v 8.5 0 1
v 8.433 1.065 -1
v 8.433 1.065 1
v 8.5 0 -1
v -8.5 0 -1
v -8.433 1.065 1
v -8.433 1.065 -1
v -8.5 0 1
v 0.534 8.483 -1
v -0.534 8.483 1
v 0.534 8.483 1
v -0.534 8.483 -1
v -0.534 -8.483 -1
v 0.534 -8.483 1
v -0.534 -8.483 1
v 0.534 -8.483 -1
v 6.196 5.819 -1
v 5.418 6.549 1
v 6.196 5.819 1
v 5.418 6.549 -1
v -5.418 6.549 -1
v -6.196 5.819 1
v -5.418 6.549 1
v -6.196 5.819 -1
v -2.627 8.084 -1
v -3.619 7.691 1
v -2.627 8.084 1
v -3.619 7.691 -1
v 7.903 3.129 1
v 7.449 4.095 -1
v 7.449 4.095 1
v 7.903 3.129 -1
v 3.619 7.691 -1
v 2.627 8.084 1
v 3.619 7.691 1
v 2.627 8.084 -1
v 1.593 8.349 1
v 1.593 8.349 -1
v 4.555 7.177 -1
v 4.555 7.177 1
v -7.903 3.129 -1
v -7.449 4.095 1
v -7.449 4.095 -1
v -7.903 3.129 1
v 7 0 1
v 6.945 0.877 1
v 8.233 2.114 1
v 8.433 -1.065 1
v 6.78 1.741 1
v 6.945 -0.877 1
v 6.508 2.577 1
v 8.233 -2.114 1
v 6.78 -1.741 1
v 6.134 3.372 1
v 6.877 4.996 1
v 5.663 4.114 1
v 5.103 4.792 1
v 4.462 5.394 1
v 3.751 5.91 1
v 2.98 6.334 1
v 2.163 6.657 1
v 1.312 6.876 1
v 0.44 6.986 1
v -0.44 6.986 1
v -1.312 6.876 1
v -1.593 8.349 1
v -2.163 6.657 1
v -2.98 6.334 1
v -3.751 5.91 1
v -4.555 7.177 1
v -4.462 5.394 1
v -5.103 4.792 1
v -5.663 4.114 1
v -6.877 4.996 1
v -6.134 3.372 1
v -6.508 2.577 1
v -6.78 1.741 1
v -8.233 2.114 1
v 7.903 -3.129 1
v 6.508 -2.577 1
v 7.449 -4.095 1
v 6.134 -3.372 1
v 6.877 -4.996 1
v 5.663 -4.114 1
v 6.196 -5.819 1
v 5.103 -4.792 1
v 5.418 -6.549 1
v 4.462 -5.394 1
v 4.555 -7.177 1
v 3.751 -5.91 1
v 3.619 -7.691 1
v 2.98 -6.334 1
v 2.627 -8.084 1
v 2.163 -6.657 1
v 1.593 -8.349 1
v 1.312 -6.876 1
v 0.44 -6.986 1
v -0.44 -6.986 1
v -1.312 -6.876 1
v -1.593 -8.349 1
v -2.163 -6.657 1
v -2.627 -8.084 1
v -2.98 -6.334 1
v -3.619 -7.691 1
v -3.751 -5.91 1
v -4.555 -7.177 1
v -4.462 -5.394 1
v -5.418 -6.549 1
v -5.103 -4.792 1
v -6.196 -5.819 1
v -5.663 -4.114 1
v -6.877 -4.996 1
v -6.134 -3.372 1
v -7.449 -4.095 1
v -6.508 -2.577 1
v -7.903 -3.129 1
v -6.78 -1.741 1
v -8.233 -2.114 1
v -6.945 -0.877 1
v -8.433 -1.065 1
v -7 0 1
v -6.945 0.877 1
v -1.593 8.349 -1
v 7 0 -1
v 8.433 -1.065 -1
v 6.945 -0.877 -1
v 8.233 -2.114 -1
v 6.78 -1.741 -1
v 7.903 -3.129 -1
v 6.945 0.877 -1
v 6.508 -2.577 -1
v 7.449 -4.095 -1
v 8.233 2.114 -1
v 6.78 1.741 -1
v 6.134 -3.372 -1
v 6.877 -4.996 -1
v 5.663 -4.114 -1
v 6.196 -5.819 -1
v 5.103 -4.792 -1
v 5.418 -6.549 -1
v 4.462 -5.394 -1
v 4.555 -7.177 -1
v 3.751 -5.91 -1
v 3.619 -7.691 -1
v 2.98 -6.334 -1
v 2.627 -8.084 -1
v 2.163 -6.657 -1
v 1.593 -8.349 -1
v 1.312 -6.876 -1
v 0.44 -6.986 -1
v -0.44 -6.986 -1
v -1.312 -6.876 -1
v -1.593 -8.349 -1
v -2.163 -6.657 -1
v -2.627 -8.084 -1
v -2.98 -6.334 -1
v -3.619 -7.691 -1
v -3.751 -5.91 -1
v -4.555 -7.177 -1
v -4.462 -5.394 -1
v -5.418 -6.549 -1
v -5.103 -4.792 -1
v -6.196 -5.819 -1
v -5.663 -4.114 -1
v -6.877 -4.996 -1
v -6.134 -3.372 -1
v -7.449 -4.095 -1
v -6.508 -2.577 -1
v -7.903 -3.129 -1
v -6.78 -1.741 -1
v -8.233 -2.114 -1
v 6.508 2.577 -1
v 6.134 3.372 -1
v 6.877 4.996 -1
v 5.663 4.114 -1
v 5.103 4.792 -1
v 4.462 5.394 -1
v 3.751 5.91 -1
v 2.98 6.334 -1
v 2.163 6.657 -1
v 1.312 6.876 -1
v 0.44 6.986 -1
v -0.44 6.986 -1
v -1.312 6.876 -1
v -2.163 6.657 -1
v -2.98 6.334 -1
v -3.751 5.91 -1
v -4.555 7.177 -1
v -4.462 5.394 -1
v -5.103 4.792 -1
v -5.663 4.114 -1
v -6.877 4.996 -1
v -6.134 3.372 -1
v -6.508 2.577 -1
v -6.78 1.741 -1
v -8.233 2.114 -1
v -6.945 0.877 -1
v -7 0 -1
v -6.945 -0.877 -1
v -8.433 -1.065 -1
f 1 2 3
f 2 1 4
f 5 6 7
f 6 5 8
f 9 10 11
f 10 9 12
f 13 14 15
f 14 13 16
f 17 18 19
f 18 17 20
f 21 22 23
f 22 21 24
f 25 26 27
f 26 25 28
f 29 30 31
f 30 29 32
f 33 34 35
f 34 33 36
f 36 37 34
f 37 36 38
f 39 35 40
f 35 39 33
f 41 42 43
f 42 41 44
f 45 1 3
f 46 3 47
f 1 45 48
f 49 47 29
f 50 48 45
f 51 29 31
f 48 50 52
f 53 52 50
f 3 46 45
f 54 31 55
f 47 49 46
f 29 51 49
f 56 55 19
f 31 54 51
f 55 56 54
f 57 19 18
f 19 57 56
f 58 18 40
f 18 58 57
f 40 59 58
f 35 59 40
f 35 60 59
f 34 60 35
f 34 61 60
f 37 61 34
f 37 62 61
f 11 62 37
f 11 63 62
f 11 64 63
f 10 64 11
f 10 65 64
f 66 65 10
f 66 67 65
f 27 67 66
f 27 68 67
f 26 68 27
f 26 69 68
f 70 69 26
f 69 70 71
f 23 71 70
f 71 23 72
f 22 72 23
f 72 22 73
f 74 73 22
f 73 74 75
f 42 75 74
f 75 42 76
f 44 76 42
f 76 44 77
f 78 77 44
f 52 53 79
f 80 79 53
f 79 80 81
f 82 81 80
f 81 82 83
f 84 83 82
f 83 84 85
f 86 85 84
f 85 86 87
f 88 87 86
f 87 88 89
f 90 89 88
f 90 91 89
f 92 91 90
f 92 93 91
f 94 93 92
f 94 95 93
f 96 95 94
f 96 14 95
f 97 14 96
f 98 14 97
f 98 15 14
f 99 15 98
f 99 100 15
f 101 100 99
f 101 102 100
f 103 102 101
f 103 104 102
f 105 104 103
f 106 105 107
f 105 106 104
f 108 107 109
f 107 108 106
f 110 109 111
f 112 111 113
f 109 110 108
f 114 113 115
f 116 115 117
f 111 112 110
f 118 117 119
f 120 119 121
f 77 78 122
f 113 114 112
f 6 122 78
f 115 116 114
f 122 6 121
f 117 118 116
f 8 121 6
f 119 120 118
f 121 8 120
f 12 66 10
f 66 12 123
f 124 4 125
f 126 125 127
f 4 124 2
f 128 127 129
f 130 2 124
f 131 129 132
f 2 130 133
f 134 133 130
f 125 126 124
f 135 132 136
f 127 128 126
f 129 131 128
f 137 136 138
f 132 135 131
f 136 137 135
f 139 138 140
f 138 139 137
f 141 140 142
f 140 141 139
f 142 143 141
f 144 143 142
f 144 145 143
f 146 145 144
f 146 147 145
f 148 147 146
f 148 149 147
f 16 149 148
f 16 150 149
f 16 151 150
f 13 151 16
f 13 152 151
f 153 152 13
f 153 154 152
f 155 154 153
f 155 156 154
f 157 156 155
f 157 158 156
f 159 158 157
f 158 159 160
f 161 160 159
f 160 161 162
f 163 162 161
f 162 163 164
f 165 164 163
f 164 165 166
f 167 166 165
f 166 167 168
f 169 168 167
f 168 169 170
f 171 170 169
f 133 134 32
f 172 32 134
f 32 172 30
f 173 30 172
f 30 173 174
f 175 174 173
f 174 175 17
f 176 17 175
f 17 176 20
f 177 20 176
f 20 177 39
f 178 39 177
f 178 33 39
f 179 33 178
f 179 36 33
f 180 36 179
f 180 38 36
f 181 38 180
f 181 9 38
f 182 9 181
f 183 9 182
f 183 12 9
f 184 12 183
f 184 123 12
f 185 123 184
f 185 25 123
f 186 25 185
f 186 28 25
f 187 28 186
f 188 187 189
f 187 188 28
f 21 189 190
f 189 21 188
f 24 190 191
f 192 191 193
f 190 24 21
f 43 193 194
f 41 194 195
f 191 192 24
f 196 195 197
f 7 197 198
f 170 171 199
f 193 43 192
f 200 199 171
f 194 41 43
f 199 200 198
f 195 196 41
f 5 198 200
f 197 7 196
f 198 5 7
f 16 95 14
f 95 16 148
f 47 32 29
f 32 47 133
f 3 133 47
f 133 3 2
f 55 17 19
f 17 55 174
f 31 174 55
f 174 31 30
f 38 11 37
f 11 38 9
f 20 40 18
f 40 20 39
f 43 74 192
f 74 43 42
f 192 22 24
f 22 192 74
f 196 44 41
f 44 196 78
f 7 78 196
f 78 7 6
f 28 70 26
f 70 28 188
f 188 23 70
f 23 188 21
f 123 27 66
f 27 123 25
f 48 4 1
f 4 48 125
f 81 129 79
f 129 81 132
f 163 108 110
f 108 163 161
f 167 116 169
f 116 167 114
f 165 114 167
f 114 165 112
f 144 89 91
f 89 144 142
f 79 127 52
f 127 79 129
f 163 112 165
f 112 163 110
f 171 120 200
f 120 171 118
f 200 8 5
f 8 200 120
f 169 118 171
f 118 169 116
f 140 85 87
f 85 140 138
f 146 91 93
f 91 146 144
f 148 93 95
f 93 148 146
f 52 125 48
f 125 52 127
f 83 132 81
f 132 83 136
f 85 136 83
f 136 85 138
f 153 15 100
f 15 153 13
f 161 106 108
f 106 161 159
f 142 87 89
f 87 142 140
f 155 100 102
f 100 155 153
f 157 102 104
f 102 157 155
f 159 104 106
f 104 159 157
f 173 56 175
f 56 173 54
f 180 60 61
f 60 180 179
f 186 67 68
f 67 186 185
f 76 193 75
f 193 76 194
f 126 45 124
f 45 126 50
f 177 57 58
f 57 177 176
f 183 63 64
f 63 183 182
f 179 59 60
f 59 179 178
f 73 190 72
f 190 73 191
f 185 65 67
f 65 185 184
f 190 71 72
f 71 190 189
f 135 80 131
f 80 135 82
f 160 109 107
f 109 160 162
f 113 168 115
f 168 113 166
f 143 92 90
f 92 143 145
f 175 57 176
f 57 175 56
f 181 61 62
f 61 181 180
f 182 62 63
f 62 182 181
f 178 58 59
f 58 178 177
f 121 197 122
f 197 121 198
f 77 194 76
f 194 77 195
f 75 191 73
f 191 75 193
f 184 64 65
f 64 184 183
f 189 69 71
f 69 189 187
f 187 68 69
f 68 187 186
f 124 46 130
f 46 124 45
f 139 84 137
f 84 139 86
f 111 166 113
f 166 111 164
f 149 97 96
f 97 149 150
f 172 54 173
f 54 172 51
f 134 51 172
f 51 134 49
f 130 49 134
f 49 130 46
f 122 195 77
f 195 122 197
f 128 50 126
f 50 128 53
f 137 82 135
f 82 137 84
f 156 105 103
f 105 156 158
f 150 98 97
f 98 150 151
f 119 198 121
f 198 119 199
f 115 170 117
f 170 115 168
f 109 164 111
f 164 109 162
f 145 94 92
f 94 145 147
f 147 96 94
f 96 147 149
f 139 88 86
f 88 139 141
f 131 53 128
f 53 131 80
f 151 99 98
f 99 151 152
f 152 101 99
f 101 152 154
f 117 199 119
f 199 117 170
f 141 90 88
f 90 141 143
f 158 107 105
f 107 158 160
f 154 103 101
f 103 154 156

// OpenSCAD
$fn = 50;


difference() {
	union() {
		translate(v = [0, 0, -1.0000000000]) {
			cylinder(h = 2, r = 8.5000000000);
		}
	}
	union() {
		translate(v = [0, 0, -100.0000000000]) {
			cylinder(h = 200, r = 7);
		}
	}
}
